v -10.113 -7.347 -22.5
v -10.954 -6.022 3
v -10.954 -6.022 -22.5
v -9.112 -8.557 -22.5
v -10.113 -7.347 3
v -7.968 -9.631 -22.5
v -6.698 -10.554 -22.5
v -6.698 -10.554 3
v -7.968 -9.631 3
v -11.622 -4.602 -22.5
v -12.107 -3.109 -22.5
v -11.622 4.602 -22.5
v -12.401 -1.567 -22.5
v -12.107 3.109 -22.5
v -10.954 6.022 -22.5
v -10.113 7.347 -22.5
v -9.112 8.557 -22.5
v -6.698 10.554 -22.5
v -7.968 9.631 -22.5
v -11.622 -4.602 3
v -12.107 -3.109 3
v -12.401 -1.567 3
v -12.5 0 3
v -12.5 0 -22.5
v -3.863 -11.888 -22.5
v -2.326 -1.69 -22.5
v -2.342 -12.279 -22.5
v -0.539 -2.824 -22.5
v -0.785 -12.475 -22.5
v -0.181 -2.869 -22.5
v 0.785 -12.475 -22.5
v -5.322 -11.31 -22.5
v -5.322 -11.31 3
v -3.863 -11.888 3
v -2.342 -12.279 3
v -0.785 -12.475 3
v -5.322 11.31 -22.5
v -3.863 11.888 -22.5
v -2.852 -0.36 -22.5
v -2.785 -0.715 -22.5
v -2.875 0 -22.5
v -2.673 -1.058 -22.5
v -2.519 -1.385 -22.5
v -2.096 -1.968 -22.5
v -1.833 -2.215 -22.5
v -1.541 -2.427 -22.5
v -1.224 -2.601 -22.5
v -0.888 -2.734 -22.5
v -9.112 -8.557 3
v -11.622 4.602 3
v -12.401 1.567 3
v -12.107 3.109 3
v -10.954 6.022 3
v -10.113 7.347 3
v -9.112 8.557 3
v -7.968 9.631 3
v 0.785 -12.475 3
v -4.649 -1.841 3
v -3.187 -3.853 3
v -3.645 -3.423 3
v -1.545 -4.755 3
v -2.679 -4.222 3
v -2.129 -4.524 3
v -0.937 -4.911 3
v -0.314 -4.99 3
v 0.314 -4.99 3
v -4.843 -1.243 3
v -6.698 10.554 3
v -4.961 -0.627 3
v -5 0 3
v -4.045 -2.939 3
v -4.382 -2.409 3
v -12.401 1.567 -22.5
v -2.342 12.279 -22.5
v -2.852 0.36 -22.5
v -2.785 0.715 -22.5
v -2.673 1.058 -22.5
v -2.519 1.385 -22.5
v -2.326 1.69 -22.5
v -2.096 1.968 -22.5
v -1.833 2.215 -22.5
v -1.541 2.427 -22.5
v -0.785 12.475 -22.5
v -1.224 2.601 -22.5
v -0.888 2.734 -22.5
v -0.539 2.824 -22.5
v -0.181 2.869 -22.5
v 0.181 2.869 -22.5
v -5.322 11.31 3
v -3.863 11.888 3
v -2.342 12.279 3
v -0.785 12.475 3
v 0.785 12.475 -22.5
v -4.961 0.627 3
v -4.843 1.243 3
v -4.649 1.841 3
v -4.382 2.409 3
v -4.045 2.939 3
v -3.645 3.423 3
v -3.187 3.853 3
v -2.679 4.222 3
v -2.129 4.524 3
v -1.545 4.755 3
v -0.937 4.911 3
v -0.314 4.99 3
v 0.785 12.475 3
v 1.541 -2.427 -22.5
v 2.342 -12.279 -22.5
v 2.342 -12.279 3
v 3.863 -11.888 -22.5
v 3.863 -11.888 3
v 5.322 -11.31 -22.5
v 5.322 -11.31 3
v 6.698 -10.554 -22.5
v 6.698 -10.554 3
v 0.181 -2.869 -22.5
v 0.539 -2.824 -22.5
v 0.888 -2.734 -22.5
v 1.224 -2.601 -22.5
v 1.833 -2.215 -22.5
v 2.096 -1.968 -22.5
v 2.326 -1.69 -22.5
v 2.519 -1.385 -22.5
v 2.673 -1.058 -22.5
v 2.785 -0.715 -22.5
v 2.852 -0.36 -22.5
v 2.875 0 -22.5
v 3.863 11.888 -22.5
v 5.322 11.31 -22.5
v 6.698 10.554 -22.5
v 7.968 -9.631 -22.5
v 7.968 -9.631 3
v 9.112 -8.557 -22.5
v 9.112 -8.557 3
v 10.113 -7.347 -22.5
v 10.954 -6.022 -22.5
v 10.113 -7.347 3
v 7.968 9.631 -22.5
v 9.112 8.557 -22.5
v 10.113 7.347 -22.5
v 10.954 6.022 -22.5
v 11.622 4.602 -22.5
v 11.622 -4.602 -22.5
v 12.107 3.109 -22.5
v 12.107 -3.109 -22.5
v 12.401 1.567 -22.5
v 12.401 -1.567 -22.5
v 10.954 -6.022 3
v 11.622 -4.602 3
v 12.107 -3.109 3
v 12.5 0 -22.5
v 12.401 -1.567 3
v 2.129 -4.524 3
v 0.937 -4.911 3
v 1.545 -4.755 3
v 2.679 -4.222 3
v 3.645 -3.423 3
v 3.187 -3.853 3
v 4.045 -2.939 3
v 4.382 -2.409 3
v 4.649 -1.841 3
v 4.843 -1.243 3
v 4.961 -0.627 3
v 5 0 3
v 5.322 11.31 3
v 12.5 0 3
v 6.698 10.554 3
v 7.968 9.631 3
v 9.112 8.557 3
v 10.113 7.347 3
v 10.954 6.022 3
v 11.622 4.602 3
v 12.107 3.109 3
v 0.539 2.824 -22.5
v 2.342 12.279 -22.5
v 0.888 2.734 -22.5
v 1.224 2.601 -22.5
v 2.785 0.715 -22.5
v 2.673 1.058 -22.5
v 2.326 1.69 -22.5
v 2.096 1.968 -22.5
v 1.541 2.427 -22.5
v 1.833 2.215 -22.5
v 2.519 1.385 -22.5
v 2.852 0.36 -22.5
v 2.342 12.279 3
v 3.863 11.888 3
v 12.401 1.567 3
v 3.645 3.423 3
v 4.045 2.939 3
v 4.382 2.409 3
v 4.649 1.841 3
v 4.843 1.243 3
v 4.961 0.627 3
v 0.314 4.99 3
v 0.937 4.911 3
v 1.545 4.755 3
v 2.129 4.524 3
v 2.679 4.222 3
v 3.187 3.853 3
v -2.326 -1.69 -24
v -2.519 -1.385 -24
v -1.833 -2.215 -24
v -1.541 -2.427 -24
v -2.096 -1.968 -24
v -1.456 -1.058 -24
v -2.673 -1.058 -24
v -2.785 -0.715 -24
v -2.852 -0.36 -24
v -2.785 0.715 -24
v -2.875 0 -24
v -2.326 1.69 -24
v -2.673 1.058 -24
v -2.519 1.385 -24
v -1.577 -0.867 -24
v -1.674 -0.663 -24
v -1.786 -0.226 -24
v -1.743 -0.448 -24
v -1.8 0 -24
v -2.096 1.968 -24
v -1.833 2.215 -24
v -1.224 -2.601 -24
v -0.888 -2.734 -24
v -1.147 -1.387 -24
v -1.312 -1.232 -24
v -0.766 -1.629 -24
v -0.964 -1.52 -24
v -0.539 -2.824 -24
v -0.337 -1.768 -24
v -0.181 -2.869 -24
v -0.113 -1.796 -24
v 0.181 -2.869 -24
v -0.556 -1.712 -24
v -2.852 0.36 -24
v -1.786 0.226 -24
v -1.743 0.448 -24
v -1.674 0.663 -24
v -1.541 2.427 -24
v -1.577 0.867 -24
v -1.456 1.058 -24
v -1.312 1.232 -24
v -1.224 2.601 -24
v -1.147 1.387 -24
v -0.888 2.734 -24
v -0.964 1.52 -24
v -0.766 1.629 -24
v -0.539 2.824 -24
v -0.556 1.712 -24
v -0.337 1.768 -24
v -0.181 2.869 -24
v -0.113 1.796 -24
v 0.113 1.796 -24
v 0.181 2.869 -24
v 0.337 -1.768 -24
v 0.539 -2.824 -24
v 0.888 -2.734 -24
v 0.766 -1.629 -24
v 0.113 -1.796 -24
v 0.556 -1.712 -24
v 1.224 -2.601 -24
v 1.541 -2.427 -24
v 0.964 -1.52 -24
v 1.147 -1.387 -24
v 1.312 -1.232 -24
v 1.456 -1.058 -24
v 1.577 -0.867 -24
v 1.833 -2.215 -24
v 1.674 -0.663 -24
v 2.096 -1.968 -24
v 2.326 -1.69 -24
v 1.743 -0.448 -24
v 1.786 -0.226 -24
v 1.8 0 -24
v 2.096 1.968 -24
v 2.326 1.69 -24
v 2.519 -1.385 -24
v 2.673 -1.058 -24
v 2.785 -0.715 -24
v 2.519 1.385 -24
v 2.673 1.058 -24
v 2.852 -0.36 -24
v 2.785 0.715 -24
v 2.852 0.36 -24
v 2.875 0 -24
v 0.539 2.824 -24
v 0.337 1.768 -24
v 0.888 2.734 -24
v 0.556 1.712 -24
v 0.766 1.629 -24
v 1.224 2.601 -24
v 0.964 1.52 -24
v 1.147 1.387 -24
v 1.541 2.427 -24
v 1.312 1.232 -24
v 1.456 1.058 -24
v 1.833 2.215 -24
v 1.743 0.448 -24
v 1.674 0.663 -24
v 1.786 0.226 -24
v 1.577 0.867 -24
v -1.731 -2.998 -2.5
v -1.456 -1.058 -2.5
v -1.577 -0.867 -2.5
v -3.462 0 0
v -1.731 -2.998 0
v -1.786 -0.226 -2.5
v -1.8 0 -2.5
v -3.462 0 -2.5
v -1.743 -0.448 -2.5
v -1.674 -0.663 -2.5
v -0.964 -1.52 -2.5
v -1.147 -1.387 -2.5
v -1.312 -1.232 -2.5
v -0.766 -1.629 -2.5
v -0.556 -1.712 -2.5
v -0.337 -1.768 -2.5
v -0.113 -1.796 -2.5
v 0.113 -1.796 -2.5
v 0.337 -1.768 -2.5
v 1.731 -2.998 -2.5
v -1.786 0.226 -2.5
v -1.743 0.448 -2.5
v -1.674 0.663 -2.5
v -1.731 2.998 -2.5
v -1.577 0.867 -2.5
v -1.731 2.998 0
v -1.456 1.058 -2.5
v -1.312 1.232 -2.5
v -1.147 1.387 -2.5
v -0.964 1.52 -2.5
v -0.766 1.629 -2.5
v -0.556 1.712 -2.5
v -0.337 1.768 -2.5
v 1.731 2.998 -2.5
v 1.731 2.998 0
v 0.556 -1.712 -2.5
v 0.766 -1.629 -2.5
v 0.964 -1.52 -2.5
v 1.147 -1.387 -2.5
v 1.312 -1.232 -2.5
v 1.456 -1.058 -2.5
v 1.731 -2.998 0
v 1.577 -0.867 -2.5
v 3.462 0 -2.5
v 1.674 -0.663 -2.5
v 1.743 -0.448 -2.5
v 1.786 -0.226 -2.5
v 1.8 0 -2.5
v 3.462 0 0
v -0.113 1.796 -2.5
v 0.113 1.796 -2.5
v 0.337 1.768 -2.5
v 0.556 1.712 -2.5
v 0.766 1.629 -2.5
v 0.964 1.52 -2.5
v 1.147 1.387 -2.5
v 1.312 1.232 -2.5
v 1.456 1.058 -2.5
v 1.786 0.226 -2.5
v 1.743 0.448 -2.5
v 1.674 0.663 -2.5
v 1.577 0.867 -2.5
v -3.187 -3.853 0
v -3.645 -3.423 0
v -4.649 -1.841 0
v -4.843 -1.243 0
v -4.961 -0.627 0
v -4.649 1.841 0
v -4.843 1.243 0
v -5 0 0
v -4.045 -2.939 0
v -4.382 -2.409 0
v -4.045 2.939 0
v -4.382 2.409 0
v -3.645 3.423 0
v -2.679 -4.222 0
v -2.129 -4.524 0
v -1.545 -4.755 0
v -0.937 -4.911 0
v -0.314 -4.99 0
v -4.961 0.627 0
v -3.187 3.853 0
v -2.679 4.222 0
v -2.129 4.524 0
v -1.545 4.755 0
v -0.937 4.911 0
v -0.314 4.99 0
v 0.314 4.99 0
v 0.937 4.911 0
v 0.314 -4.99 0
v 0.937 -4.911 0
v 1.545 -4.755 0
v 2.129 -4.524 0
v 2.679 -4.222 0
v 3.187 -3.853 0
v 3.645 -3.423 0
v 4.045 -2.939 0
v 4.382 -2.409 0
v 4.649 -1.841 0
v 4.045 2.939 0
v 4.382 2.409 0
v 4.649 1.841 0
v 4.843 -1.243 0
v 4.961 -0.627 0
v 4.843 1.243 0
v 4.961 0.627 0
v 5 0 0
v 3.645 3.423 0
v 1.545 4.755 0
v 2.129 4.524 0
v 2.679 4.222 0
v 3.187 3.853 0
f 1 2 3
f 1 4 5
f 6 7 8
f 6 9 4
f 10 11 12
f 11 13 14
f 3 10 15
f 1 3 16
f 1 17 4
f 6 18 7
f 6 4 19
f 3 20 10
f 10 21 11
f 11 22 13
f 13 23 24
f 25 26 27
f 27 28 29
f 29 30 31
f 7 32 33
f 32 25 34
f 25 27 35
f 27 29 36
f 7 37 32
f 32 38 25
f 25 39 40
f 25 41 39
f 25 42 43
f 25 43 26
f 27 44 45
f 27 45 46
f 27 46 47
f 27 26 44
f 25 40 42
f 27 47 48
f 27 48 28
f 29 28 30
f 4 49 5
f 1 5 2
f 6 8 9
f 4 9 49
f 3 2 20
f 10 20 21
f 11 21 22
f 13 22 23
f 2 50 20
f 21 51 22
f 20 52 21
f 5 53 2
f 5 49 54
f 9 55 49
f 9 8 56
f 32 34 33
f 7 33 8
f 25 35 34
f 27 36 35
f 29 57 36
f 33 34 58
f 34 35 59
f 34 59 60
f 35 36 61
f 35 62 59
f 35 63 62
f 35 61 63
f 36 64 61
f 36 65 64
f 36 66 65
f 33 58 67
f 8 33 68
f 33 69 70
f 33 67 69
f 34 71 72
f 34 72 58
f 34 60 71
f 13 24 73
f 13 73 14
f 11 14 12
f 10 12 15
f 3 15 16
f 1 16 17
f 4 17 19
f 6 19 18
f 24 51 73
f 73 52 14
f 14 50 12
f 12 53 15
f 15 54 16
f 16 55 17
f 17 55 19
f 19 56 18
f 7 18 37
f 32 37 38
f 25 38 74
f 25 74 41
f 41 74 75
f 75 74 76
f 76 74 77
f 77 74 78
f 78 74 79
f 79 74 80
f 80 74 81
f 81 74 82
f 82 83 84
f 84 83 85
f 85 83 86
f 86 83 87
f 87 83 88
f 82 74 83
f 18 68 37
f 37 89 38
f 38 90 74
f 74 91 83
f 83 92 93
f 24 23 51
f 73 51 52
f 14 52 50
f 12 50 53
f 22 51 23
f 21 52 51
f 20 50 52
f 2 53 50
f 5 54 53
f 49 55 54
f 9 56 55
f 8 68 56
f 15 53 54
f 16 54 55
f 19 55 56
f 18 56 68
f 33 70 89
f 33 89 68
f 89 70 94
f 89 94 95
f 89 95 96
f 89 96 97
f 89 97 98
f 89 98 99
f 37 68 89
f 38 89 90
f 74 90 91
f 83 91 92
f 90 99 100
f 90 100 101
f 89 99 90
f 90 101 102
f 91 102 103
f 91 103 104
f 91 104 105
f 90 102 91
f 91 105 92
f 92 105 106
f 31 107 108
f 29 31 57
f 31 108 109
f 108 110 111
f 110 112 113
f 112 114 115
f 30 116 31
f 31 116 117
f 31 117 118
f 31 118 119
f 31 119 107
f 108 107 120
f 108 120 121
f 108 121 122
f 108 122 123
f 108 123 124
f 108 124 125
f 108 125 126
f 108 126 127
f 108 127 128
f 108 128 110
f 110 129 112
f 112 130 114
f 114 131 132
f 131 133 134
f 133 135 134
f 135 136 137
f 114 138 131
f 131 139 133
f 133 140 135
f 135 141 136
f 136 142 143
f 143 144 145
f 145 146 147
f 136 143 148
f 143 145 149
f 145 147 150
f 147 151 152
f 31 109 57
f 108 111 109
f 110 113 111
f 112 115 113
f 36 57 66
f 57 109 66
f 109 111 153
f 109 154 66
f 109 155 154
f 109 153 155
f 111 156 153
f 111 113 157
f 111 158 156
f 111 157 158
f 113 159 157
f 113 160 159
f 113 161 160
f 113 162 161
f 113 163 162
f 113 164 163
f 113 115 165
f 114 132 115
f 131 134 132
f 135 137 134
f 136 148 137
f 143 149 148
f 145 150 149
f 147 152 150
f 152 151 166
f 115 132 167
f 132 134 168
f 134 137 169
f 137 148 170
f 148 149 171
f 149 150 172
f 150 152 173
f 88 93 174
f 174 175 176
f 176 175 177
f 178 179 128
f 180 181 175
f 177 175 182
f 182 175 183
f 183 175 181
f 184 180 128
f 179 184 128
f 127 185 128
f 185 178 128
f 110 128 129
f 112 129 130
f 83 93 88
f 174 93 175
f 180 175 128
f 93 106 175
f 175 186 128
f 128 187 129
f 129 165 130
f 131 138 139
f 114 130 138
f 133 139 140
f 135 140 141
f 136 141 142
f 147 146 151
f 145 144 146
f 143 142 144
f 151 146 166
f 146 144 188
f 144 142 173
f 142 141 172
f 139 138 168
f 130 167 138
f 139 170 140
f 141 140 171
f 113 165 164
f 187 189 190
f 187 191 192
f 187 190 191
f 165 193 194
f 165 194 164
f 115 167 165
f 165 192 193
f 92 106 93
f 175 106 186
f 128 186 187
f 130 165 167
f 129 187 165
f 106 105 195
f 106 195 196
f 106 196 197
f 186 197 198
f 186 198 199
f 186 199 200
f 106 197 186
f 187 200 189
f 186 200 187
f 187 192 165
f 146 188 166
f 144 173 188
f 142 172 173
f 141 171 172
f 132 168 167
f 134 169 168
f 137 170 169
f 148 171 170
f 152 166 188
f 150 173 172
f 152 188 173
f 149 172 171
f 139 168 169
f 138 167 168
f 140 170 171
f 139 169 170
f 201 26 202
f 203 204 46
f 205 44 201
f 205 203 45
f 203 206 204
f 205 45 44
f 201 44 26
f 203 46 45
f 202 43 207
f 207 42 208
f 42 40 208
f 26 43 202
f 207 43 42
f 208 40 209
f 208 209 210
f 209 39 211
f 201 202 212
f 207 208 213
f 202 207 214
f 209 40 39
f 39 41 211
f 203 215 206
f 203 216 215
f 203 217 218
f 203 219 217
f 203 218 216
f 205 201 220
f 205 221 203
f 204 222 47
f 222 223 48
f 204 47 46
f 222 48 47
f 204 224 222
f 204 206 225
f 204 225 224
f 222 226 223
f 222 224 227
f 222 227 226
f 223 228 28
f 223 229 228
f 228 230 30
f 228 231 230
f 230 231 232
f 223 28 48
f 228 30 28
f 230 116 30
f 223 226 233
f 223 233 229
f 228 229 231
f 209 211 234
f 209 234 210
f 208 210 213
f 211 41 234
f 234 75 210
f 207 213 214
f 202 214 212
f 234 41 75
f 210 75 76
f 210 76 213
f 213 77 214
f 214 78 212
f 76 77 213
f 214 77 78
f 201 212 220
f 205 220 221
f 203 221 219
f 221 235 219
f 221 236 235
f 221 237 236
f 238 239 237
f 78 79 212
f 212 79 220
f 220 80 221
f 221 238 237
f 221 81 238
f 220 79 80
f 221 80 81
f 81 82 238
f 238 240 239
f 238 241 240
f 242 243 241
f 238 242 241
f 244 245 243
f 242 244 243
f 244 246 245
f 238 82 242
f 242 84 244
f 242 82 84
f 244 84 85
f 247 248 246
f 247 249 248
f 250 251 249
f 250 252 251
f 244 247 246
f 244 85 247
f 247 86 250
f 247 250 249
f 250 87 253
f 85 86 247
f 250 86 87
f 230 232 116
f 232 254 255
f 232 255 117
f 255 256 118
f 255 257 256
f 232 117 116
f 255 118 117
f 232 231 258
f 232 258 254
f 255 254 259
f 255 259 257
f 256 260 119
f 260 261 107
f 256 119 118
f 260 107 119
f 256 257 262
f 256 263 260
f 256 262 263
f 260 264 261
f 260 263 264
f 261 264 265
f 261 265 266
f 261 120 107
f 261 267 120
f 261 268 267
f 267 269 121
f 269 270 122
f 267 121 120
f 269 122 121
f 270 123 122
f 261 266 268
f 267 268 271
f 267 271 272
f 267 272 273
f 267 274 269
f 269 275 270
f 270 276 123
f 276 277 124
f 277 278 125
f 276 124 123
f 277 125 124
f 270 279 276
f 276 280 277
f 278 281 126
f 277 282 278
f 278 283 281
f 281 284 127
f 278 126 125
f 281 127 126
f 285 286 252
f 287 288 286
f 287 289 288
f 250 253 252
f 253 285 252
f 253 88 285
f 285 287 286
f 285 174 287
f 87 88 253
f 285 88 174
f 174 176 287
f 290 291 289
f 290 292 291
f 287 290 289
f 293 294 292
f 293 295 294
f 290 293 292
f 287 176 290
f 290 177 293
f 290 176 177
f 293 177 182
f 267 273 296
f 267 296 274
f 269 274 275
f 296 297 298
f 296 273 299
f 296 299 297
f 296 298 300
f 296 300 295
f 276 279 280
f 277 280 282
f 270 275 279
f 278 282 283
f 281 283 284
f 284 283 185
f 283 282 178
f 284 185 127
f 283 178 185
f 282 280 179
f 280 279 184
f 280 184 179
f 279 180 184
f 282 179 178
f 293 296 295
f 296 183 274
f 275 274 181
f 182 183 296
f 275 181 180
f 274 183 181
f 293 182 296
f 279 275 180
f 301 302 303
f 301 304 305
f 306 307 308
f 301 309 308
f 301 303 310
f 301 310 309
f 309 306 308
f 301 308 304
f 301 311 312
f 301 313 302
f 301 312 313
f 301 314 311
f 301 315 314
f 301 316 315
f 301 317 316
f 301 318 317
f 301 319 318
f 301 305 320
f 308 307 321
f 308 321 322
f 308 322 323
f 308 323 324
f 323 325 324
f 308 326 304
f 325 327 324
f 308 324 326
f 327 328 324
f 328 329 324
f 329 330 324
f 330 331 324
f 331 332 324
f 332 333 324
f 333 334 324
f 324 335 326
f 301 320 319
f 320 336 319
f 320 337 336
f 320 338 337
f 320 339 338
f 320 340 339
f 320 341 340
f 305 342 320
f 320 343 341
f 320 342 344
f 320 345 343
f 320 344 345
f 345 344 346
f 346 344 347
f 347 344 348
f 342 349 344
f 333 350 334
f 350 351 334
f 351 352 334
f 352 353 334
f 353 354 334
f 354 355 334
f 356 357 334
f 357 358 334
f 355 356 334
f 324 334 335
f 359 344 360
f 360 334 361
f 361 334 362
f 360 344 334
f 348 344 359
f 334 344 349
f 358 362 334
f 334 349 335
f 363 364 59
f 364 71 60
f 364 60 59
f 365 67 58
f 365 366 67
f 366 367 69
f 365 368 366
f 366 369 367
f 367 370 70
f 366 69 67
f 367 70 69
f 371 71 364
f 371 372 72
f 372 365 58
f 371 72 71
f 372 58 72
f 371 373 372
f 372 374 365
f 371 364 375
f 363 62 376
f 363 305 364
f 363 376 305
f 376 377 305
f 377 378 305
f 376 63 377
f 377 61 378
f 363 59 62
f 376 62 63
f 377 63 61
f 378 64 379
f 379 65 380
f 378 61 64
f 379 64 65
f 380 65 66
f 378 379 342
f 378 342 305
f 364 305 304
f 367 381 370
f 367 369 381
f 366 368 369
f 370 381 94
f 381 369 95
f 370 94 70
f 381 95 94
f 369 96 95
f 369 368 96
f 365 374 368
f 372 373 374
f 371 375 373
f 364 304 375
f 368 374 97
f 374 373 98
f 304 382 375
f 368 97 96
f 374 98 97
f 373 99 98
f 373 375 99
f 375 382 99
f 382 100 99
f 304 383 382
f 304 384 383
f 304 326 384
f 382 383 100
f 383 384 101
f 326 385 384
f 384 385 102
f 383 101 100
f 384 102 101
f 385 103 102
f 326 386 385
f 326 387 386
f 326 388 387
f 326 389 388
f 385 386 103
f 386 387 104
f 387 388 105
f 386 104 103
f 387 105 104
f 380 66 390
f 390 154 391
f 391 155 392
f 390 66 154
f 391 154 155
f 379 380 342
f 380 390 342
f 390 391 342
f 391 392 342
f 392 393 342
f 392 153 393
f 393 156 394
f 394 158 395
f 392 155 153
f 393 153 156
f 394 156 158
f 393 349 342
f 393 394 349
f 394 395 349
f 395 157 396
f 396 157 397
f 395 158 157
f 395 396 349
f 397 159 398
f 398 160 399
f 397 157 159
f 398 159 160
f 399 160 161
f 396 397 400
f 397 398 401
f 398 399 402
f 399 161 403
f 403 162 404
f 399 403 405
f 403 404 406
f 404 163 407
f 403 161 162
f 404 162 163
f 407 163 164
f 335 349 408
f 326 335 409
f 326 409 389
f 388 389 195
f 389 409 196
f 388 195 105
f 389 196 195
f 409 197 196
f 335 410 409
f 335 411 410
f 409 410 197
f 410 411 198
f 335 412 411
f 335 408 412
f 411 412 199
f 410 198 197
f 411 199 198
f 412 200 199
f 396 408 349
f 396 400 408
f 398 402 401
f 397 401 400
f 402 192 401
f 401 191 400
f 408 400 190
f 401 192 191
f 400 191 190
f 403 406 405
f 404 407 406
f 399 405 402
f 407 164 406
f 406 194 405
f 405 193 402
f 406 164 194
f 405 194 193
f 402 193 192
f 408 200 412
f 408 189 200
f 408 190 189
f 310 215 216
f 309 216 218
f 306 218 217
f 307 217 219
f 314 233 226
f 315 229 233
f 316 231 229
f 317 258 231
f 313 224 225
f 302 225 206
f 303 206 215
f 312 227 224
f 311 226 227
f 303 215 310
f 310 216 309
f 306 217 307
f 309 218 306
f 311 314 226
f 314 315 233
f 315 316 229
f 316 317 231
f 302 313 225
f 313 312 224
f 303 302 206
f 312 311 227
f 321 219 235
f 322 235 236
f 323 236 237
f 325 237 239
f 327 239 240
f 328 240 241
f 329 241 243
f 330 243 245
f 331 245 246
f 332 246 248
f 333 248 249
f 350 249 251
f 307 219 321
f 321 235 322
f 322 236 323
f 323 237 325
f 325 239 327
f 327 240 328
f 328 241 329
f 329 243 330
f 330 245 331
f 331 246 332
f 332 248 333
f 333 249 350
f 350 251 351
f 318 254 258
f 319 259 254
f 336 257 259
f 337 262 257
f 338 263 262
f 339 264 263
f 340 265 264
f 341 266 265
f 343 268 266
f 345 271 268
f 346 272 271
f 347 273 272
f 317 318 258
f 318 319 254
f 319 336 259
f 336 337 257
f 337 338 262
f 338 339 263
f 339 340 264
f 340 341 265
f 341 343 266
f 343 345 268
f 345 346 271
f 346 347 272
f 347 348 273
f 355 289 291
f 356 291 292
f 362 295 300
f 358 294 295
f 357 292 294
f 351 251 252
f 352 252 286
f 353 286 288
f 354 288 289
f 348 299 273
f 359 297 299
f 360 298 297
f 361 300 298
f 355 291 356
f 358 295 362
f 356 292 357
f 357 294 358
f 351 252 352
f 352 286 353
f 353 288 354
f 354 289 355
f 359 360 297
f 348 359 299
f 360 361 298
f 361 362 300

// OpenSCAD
$fn = 50;

difference() {
	union() {
		translate(v = [0, 0, -22.5]) {
			cylinder(h = 25.5, r = 12.5);
		}
		#translate(v = [0, 0, -24.0]) {
			cylinder(h = 24, r = 2.875);
		}
	}
	union() {
		translate(v = [0, 0, 0]) {
			rotate(a = [0, 0, 0]) {
				difference() {
					union() {
						translate(v = [0, 0, -2.5]) {
							linear_extrude(height = 2.5) {
								polygon(points = [[3.4619999999999997, 0.0], [1.7310000000000003, 2.9981799479017264], [-1.7309999999999992, 2.9981799479017264], [-3.4619999999999997, 4.2397272186481365e-16], [-1.7310000000000014, -2.998179947901726], [1.7309999999999977, -2.9981799479017277]]);
							}
						}
					}
					union();
				}
			}
		}
		#cylinder(h = 3, r = 5.0);
		#translate(v = [0, 0, -100.0]) {
			cylinder(h = 200, r = 1.8);
		}
	}
}
